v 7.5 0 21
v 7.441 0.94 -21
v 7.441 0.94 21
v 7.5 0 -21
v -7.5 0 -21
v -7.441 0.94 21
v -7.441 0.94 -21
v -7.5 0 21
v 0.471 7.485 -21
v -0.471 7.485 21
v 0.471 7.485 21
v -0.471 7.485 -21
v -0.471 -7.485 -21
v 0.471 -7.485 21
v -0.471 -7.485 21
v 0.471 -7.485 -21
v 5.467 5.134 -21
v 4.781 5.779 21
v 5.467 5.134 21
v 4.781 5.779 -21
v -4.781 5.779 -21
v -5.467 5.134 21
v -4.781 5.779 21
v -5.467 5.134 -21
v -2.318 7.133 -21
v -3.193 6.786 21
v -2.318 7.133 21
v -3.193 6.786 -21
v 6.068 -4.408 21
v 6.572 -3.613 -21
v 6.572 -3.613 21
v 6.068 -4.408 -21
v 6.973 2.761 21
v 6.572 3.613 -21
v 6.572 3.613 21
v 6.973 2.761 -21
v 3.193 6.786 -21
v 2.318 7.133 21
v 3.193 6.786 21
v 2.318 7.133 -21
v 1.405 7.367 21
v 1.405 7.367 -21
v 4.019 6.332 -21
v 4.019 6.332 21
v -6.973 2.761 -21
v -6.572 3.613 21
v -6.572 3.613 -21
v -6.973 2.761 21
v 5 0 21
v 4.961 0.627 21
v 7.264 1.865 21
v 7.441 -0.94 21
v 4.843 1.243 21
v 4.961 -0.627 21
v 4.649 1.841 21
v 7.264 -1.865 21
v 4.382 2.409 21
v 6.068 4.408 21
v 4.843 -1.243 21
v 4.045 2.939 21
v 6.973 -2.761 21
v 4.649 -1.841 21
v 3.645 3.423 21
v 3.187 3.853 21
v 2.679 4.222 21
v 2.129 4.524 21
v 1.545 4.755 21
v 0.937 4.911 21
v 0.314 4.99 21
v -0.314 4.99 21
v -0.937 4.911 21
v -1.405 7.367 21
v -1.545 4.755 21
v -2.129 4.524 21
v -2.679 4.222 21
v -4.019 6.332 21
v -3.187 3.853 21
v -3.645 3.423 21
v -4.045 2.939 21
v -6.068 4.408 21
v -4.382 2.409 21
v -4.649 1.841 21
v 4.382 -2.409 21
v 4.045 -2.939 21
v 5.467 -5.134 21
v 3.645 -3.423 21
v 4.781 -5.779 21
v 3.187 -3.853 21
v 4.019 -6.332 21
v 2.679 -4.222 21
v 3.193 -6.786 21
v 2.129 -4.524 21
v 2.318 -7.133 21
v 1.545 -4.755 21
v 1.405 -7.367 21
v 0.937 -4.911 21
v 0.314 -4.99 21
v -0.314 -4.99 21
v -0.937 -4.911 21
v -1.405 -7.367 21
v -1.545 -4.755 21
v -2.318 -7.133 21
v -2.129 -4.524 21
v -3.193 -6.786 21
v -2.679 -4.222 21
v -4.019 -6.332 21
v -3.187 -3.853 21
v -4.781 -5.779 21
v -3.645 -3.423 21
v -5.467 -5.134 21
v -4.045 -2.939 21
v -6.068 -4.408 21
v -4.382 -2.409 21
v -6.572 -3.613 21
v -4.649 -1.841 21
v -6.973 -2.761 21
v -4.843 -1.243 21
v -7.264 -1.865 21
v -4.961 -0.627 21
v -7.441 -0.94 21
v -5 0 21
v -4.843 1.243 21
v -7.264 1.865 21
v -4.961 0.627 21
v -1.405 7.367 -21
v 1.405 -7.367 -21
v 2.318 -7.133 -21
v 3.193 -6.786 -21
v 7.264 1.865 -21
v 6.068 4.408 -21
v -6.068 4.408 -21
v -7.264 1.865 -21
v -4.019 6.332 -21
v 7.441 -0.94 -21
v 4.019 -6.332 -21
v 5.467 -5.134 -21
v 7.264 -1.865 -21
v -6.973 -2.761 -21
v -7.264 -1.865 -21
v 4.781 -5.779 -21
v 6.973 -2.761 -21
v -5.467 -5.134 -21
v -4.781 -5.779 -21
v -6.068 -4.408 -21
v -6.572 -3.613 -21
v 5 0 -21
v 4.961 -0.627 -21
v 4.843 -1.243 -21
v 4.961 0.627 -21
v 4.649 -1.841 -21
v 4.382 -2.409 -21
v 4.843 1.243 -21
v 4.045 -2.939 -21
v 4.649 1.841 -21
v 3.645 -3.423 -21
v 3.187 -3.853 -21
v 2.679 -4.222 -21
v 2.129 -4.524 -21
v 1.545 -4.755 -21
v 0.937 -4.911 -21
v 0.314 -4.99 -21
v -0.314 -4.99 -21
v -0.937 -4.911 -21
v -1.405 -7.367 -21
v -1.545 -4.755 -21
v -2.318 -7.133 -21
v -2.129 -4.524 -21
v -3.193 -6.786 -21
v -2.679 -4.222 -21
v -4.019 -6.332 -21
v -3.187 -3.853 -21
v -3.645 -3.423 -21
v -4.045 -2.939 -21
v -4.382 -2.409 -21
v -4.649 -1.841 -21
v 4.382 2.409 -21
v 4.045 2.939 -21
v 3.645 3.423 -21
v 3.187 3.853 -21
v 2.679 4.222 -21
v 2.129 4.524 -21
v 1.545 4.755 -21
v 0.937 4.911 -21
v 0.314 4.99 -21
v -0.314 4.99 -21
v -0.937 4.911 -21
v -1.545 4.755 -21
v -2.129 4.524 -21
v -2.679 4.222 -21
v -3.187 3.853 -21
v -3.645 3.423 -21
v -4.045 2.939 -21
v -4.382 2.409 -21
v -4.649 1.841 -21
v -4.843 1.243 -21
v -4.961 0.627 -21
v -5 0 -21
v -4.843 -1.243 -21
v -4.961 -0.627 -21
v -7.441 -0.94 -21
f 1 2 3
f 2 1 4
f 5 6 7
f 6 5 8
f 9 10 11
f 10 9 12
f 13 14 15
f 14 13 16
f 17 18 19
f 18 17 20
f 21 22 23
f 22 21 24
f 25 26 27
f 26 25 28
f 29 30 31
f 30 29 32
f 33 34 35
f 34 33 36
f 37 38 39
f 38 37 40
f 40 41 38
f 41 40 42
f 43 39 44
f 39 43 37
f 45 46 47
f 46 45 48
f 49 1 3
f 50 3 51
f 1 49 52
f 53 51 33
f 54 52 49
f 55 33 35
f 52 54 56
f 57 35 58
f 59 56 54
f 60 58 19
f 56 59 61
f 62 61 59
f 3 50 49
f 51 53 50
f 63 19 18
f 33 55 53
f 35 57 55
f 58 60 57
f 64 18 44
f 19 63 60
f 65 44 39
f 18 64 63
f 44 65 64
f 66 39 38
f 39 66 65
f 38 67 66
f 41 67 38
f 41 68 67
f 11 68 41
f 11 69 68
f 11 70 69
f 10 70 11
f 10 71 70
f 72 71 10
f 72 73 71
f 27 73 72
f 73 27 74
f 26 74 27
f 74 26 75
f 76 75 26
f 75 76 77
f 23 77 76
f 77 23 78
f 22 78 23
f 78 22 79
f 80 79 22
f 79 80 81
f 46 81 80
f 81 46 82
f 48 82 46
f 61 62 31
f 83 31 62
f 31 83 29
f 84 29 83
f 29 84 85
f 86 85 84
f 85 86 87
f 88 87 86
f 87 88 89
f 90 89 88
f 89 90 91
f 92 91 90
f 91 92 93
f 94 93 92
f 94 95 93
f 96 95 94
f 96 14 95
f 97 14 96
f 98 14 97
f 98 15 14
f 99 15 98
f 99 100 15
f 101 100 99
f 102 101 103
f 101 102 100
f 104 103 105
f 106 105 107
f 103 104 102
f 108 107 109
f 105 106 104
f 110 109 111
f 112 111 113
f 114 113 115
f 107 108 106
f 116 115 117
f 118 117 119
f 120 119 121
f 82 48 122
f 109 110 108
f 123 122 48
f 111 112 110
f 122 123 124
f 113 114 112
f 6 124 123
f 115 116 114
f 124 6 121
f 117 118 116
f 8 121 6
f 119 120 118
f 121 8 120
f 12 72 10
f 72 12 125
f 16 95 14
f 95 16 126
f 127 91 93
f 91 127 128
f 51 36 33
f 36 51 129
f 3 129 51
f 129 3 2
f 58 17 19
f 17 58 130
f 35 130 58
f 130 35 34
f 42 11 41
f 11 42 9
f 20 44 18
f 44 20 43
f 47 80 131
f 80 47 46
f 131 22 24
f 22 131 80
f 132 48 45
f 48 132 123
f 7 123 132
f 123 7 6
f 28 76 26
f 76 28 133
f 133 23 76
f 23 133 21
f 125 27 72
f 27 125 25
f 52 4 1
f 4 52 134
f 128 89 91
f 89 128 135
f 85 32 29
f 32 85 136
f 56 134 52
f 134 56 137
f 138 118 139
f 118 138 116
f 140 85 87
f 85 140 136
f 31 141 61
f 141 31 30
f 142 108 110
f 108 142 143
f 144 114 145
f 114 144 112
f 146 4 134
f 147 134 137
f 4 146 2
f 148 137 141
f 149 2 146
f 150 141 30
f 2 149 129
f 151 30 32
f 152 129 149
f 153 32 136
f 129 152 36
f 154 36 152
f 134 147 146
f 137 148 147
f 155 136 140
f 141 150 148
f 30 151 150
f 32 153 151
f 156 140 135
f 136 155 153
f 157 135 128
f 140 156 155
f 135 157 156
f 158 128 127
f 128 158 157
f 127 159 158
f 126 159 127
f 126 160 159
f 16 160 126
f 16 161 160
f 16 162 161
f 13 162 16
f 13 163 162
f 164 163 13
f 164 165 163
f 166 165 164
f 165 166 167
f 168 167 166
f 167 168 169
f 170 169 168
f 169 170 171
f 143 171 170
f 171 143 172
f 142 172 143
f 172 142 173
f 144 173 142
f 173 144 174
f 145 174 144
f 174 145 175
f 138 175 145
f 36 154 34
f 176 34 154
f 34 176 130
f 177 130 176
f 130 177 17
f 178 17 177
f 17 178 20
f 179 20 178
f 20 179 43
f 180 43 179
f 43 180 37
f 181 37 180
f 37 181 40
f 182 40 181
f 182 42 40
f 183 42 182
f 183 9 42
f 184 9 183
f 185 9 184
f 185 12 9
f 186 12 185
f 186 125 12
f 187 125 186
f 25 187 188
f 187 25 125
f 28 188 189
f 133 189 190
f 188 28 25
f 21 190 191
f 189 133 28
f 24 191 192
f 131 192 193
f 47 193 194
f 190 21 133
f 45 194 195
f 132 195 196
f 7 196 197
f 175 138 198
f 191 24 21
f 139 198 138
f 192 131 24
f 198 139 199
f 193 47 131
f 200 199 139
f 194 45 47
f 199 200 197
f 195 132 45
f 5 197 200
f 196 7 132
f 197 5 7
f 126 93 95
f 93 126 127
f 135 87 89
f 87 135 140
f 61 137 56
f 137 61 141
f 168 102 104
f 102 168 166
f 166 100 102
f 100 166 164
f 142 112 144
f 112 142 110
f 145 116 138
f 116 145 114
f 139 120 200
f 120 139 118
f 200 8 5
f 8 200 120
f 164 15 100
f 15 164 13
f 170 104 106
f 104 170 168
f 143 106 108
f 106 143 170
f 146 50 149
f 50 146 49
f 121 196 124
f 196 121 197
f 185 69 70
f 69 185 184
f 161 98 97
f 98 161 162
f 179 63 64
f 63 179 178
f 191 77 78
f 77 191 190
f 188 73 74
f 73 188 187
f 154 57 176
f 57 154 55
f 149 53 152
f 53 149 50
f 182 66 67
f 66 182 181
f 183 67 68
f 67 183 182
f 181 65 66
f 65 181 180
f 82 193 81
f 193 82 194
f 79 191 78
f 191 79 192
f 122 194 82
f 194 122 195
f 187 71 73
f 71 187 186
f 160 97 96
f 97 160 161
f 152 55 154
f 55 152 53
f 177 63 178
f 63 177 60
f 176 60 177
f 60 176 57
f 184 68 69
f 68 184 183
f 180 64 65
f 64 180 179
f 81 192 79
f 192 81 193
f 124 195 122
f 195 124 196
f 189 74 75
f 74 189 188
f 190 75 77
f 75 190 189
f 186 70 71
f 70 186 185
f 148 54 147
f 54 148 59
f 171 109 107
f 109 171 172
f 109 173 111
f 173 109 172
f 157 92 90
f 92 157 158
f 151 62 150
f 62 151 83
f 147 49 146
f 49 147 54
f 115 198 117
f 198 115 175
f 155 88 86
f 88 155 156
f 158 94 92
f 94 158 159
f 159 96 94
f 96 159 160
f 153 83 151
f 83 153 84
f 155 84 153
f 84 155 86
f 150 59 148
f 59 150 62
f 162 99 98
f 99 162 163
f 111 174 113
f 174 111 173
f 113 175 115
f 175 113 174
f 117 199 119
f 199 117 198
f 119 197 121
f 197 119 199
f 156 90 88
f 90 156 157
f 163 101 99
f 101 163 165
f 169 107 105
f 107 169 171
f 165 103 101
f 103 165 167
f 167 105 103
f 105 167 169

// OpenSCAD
$fn = 50;


difference() {
	union() {
		translate(v = [0, 0, -21.0000000000]) {
			cylinder(h = 42, r = 7.5000000000);
		}
	}
	union() {
		translate(v = [0, 0, -100.0000000000]) {
			cylinder(h = 200, r = 5);
		}
	}
}
